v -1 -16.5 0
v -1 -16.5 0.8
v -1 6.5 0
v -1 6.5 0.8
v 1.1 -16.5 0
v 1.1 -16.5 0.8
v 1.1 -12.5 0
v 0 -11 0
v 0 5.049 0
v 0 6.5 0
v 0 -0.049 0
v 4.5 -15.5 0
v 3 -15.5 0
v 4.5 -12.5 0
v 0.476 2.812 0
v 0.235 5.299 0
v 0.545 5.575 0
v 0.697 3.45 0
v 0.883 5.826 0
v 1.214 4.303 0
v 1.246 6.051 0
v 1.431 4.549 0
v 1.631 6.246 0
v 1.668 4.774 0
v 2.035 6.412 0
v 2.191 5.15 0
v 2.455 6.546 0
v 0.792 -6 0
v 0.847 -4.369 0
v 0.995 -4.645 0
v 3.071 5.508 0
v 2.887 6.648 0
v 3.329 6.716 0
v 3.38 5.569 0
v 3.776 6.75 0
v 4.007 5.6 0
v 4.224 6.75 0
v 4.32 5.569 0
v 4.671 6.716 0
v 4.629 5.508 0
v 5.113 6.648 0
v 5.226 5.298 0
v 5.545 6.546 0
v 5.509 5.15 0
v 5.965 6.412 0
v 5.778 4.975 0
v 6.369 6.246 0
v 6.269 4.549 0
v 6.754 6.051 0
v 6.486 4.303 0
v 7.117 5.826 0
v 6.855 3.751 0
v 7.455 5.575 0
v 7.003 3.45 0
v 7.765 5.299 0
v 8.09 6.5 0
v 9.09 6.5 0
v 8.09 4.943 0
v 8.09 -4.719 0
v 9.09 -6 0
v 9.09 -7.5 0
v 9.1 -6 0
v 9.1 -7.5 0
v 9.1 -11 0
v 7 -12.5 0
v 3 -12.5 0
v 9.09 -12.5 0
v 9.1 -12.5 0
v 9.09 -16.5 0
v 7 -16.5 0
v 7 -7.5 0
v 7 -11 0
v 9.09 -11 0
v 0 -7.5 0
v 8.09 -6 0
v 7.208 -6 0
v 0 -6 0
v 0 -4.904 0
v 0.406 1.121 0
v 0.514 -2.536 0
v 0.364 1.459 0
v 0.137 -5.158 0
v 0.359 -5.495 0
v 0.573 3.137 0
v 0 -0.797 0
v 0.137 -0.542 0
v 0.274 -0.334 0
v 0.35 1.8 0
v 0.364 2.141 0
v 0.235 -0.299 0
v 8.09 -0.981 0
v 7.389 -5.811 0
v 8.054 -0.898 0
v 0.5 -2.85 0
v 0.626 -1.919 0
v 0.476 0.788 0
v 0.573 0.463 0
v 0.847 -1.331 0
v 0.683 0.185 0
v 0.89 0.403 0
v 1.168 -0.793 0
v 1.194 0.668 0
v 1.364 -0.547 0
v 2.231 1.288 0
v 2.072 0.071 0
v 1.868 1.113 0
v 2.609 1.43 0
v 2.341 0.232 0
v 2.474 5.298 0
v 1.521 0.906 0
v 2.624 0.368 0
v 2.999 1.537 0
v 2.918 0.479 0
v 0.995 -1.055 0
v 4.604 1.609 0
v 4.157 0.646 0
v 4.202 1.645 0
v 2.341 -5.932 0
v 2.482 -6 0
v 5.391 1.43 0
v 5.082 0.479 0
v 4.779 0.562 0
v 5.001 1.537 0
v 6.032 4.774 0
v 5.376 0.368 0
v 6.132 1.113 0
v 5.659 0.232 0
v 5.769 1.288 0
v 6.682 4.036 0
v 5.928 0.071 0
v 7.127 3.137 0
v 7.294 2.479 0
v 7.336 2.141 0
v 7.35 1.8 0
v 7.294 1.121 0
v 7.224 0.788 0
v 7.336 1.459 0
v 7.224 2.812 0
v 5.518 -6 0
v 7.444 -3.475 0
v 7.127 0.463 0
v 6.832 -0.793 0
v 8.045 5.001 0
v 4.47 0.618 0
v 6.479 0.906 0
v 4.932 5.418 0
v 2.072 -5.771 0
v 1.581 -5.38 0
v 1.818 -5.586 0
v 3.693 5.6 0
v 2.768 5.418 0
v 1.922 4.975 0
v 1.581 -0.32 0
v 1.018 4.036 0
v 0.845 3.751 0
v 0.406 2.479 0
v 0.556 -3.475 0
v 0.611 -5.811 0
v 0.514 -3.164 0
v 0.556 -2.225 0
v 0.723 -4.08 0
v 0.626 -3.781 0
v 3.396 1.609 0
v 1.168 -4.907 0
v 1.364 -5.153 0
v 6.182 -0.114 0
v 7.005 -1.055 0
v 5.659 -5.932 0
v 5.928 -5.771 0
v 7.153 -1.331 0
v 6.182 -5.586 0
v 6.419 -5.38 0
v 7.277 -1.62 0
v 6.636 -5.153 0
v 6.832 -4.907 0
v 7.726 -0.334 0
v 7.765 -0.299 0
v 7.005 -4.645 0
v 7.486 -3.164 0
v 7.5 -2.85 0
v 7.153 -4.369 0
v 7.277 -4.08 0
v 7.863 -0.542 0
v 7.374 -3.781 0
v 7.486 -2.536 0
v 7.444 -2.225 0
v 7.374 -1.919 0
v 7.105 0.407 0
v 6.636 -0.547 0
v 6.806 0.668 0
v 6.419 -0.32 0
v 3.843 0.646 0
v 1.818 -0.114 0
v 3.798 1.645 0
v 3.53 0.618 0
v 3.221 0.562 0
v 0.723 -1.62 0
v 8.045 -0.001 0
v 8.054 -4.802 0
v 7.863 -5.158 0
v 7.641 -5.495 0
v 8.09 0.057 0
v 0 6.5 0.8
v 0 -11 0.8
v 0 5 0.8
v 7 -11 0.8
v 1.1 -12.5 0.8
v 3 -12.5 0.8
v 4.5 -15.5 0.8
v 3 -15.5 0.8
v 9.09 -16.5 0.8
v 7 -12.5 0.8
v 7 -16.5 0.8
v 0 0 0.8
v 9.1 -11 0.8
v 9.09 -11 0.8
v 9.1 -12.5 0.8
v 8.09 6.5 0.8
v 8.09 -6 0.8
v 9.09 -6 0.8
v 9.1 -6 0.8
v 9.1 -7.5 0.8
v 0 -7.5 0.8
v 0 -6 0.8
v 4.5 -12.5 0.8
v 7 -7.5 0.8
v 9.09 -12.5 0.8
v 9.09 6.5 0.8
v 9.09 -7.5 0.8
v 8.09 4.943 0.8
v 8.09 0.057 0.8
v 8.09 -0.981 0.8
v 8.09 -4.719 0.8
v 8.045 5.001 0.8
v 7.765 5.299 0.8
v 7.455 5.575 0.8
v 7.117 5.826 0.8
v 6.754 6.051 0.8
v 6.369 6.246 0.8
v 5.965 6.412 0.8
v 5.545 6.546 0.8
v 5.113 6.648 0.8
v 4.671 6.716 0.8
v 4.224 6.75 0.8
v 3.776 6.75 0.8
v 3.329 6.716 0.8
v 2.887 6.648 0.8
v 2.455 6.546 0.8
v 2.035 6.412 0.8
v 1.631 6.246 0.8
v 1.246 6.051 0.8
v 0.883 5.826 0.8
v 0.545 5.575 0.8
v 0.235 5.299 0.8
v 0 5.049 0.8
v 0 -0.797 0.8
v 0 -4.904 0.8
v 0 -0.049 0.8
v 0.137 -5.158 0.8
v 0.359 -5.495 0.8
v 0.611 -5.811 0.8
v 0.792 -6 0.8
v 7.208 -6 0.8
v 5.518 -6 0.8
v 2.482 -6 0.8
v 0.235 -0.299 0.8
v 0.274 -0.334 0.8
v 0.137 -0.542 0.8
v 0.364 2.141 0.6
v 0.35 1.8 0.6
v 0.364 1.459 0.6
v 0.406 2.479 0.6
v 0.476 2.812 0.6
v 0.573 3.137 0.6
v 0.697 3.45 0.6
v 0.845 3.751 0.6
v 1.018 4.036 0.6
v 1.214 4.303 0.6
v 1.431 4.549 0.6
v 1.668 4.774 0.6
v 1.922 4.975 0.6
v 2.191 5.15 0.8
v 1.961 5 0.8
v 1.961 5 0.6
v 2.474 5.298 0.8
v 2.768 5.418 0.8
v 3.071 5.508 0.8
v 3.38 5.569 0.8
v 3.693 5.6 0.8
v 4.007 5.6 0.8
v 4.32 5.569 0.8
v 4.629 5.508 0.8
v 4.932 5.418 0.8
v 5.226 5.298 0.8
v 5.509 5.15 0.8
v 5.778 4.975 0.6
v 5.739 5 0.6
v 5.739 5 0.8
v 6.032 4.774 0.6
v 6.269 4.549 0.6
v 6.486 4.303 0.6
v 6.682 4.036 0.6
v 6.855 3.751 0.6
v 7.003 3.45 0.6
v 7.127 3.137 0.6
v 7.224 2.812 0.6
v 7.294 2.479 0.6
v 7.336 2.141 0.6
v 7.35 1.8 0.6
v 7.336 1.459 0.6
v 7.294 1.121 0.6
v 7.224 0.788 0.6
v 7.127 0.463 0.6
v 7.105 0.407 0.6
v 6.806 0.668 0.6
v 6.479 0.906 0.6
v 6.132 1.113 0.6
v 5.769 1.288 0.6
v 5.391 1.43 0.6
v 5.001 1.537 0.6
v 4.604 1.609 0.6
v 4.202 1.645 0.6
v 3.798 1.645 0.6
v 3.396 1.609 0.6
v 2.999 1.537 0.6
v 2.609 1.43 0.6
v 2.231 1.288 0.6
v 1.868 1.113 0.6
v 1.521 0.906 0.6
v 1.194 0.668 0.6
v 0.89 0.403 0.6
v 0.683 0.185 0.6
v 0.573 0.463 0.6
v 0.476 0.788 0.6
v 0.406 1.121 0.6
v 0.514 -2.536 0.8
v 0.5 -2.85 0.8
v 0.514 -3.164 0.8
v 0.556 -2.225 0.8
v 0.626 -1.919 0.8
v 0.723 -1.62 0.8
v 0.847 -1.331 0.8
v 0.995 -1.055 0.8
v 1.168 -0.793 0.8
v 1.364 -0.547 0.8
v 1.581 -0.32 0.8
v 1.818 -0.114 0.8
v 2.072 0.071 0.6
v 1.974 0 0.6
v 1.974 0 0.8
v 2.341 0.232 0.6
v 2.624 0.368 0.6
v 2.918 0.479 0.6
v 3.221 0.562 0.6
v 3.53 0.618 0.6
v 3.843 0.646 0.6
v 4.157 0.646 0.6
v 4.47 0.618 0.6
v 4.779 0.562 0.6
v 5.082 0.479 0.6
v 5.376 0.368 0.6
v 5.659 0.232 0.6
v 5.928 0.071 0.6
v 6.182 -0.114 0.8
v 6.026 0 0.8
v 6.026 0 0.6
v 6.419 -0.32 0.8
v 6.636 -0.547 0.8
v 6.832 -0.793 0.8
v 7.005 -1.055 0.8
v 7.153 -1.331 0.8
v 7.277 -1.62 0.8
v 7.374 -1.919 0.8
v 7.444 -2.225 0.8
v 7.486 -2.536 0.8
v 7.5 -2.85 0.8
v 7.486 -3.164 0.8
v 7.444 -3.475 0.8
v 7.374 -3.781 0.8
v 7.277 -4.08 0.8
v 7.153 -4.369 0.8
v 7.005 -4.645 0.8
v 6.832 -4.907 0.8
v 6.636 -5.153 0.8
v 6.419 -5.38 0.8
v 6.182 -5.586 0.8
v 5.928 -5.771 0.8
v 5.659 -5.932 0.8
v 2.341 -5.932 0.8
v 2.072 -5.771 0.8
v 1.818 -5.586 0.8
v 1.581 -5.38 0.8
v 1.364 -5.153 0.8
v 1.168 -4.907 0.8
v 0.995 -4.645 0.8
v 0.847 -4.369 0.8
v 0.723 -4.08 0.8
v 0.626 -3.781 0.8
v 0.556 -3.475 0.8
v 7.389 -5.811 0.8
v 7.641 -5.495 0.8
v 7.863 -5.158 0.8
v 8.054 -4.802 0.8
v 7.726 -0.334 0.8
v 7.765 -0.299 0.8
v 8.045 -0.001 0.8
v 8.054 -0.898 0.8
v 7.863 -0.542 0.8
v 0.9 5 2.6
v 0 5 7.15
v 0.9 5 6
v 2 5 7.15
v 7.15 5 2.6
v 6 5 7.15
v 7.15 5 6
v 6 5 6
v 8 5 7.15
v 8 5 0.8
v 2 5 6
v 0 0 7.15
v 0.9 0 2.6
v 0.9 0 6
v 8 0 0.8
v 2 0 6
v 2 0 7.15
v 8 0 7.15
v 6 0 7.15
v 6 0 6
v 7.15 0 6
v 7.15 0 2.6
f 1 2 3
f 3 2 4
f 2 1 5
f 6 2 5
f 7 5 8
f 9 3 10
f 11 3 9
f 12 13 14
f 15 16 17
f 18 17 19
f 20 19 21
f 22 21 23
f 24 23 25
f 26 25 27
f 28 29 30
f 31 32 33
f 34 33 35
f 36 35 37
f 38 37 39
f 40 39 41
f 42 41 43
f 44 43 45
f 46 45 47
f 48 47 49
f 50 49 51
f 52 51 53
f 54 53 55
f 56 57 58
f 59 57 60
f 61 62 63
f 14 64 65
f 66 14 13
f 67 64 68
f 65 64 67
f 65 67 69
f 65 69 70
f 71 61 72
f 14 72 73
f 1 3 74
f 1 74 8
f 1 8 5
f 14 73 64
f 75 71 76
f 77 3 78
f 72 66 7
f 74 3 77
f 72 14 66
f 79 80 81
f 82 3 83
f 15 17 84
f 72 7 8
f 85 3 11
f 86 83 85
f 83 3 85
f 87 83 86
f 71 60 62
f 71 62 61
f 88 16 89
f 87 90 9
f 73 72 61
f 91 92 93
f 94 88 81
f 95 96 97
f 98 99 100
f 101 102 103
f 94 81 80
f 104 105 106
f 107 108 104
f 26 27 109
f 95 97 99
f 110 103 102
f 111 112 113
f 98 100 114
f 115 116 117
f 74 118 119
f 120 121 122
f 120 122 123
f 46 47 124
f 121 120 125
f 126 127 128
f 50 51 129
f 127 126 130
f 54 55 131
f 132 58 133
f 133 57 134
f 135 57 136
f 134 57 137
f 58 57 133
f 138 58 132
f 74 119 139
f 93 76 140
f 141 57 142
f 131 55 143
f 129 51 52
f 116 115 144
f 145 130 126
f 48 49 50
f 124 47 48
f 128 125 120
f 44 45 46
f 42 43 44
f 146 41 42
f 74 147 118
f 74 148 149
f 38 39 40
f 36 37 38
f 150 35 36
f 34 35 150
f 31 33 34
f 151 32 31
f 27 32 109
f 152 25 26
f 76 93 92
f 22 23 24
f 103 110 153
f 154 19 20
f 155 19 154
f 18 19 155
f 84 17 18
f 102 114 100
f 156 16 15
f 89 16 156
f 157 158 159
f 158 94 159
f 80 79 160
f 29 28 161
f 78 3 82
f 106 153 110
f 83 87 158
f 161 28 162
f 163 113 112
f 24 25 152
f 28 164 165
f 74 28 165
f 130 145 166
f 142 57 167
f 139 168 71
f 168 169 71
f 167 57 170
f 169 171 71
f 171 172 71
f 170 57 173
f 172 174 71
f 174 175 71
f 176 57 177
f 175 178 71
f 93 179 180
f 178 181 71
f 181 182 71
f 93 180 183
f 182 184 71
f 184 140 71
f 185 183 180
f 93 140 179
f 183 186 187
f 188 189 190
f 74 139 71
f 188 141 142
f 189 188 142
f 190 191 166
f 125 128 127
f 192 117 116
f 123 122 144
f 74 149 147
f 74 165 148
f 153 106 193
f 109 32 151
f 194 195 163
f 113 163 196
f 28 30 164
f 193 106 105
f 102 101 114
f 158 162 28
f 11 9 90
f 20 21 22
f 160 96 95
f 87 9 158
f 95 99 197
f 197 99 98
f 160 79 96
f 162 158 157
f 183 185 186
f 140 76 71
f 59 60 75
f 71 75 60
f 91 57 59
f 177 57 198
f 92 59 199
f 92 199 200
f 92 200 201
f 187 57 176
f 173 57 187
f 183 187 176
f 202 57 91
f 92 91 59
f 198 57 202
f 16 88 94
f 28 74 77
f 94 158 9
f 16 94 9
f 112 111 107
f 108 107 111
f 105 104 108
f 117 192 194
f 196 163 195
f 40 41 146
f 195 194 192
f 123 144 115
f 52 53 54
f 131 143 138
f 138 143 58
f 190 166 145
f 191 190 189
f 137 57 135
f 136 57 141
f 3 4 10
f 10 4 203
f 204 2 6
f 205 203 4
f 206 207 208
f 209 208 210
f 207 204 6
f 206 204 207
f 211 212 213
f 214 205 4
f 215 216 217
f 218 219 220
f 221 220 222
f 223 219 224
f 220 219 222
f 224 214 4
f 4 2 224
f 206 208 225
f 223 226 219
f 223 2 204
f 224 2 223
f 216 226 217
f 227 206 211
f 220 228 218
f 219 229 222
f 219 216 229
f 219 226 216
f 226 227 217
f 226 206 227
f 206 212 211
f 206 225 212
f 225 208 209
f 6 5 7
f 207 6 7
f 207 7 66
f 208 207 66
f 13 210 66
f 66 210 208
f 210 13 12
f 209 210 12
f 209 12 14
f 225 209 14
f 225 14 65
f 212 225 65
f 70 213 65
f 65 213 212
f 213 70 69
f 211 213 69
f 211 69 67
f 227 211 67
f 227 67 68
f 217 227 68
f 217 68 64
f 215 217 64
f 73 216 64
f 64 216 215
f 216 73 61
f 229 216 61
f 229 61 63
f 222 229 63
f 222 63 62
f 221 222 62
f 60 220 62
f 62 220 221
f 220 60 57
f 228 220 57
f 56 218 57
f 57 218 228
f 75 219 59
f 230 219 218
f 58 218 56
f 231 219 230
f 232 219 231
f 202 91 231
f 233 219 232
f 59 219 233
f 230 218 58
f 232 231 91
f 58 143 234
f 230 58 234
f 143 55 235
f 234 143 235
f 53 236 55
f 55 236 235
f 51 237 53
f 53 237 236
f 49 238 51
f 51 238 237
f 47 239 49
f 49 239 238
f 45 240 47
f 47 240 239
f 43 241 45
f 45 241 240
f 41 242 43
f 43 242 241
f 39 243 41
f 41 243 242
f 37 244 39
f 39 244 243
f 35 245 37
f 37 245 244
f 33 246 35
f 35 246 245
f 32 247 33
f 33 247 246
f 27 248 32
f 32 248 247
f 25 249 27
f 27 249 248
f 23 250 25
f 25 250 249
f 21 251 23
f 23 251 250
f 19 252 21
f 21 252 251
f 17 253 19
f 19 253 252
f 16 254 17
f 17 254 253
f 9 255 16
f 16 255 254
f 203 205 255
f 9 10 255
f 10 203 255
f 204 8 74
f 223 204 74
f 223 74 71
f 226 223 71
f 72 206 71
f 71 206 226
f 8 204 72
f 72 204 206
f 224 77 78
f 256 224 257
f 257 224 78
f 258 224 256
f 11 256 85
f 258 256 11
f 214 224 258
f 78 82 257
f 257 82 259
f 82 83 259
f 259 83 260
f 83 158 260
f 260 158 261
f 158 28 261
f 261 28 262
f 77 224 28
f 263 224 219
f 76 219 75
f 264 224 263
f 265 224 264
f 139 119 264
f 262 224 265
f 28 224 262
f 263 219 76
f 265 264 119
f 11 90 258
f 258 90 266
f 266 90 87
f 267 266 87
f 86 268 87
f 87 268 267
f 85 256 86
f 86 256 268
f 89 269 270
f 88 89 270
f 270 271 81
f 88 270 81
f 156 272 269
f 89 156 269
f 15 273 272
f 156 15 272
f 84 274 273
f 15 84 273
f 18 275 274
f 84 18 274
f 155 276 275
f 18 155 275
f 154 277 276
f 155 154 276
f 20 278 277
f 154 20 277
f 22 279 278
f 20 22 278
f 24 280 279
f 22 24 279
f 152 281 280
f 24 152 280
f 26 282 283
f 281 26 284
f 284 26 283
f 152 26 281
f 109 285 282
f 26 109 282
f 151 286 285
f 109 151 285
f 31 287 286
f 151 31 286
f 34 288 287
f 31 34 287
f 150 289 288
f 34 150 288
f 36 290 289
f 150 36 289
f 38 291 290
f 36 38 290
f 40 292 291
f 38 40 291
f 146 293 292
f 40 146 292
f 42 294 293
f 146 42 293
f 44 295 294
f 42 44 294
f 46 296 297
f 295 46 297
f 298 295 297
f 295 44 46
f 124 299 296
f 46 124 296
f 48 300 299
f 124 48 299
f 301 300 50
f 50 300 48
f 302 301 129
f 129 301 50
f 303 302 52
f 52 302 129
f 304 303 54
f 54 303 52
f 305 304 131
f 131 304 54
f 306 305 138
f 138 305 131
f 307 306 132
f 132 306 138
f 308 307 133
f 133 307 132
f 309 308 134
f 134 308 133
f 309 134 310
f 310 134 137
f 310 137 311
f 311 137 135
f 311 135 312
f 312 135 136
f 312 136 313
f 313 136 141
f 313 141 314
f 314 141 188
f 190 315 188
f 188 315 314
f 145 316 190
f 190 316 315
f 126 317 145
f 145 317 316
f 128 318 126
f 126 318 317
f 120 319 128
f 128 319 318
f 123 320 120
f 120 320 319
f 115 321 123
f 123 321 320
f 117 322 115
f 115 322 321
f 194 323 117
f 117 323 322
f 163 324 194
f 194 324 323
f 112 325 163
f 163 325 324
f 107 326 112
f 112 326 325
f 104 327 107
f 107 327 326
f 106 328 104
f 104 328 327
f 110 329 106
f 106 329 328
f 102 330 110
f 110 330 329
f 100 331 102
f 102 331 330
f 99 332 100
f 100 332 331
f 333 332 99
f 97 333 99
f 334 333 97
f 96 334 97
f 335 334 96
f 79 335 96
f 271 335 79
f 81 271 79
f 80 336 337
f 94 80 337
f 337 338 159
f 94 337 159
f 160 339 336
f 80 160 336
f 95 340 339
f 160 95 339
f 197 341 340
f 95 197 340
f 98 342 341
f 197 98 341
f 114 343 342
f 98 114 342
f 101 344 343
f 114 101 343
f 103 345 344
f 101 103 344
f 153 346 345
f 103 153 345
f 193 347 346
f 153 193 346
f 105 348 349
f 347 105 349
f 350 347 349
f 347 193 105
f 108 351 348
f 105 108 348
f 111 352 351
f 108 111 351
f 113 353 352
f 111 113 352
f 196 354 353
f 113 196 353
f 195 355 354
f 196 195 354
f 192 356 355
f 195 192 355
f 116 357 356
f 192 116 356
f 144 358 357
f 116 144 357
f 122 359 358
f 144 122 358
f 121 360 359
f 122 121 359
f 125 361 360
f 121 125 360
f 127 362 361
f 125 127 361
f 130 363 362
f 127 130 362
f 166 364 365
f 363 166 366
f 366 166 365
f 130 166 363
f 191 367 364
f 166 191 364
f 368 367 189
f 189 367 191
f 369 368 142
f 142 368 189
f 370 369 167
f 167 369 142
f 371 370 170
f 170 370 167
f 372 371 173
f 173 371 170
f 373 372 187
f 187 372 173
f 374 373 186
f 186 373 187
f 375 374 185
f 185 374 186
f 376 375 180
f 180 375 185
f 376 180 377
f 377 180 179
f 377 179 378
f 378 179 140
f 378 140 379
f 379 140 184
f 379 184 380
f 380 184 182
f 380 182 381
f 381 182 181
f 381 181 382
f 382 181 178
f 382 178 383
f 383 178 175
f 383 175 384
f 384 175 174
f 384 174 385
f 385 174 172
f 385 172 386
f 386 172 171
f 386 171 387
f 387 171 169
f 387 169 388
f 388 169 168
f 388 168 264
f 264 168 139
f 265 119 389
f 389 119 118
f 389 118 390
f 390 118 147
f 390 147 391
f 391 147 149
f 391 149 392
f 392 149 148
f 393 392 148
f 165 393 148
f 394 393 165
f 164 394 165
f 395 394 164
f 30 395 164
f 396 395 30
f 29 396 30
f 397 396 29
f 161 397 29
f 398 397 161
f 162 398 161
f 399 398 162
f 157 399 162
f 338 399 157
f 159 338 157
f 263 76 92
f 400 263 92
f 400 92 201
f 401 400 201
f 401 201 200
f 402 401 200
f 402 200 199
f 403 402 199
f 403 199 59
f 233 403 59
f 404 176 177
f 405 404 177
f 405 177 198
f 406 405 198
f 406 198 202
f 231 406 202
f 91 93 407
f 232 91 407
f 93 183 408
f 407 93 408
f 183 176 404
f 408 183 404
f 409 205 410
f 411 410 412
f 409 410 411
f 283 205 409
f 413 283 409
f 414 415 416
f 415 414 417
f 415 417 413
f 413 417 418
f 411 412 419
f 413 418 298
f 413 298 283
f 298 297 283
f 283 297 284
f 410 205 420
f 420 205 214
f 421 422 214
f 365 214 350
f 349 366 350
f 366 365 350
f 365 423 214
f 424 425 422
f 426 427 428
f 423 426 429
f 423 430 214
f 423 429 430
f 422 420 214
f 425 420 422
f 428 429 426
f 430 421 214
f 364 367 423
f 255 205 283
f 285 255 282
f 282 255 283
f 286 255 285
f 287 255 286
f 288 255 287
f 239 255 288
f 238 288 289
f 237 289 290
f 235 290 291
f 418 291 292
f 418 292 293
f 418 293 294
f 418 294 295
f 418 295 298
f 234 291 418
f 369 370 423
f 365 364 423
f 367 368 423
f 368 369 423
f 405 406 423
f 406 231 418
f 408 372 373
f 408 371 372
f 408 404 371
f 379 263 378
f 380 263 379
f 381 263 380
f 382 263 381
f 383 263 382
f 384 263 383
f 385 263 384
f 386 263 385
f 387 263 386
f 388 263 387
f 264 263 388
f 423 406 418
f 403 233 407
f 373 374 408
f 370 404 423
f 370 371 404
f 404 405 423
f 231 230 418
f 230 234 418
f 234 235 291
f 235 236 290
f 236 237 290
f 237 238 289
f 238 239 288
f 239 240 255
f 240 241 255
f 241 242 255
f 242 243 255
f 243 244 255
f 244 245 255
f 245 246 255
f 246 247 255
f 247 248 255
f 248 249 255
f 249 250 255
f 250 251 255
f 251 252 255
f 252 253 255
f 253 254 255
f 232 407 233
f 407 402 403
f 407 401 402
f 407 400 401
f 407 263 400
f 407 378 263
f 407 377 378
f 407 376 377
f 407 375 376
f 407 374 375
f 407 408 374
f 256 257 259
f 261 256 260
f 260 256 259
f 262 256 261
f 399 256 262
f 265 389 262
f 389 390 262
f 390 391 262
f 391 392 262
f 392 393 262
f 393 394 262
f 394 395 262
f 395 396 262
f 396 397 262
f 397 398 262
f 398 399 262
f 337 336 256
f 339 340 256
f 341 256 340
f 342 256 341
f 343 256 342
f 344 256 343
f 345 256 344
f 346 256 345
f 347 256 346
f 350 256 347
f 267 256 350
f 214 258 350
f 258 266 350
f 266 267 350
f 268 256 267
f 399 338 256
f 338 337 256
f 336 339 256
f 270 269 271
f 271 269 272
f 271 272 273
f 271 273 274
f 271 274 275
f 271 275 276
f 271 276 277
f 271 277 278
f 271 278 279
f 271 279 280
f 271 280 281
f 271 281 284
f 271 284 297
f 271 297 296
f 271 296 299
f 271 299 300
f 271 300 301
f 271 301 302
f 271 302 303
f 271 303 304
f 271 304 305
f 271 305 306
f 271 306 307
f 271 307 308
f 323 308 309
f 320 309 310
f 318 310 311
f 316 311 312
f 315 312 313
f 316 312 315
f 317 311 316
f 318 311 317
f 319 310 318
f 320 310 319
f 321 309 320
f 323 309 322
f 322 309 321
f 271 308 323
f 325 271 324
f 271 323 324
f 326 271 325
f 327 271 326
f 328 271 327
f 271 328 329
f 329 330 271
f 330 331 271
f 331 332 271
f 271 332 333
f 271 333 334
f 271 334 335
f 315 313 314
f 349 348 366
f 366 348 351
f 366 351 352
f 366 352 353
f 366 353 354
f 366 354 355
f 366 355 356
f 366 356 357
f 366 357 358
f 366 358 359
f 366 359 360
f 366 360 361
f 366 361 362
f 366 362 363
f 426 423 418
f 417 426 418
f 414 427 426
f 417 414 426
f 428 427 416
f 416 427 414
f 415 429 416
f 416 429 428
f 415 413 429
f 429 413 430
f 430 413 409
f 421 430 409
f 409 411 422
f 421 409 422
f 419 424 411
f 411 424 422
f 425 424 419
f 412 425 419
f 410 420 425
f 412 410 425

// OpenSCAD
//rotate([90,0,0])
translate([0,0,.6])//was .8
union(){//Clip
	difference(){
		resize([8,5,5.4])//original cube
		cube(2);
		translate([.9,0,2])
		resize([6.25,5,5.5])//cut out of the original cube
		cube(2);
	}//end difference
	translate([0,0,5.4])
	resize([2,5,1.15])
	cube(2);

	translate([6,0,5.4])
	resize([2,5,1.15])
	cube(2);
}//end union


//Thickness of main part of clip: ~1.75??
union(){//$$$$$$$$$
	difference(){
		//C base
		translate([4,2.5,0])
		resize([10,8.5,0])
		cylinder(.8,4.5,4.5,$fn = 70);
		
		translate([3.85,1.8,0])
		resize([7,7.6,0])
		cylinder(.8,3.15,3.15,$fn = 70);

		translate([4,-2.85,0])
		cylinder(.8,3.5,3.5,$fn = 70);
	}//end difference "C"
	
	difference(){
		//"o" base
		translate([4,-2.85,0])
		cylinder(.8,4.5,4.5,$fn = 70);
		translate([4,-2.85,0])
		cylinder(.8,3.5,3.5,$fn = 70);
	}//end difference "O"

	union(){
		translate([-.4,-7.5,0])
		resize([9.5,1.5, .8])
		cube(2);//back of l
		
		translate([7,-12,0])
		resize([1.5,5,.8])
		cube(2);//bottom of l

		translate([-.4,-12.5,0])
		resize([9.5,1.5, .8])
		cube(2);//back of e

		translate([7,-16.5,0])
		resize([1.5,5,.8])
		cube(2);//bottom of e

		translate([3,-15.5,0])
		resize([1.5,3.75,.8])
		cube(2);//middle of e

		translate([-.4,-16.5,0])
		resize([1.5,5,.8])
		cube(2);//Top of e
	}//end union of L

	translate([-1,-16.5,0])
	resize([1,23,.8])
	cube(2);//top line	

	translate([8.09,-16.5,0])
	resize([1,23,.8])
	cube(2);//top line

}//end union  $$$$$$$$
